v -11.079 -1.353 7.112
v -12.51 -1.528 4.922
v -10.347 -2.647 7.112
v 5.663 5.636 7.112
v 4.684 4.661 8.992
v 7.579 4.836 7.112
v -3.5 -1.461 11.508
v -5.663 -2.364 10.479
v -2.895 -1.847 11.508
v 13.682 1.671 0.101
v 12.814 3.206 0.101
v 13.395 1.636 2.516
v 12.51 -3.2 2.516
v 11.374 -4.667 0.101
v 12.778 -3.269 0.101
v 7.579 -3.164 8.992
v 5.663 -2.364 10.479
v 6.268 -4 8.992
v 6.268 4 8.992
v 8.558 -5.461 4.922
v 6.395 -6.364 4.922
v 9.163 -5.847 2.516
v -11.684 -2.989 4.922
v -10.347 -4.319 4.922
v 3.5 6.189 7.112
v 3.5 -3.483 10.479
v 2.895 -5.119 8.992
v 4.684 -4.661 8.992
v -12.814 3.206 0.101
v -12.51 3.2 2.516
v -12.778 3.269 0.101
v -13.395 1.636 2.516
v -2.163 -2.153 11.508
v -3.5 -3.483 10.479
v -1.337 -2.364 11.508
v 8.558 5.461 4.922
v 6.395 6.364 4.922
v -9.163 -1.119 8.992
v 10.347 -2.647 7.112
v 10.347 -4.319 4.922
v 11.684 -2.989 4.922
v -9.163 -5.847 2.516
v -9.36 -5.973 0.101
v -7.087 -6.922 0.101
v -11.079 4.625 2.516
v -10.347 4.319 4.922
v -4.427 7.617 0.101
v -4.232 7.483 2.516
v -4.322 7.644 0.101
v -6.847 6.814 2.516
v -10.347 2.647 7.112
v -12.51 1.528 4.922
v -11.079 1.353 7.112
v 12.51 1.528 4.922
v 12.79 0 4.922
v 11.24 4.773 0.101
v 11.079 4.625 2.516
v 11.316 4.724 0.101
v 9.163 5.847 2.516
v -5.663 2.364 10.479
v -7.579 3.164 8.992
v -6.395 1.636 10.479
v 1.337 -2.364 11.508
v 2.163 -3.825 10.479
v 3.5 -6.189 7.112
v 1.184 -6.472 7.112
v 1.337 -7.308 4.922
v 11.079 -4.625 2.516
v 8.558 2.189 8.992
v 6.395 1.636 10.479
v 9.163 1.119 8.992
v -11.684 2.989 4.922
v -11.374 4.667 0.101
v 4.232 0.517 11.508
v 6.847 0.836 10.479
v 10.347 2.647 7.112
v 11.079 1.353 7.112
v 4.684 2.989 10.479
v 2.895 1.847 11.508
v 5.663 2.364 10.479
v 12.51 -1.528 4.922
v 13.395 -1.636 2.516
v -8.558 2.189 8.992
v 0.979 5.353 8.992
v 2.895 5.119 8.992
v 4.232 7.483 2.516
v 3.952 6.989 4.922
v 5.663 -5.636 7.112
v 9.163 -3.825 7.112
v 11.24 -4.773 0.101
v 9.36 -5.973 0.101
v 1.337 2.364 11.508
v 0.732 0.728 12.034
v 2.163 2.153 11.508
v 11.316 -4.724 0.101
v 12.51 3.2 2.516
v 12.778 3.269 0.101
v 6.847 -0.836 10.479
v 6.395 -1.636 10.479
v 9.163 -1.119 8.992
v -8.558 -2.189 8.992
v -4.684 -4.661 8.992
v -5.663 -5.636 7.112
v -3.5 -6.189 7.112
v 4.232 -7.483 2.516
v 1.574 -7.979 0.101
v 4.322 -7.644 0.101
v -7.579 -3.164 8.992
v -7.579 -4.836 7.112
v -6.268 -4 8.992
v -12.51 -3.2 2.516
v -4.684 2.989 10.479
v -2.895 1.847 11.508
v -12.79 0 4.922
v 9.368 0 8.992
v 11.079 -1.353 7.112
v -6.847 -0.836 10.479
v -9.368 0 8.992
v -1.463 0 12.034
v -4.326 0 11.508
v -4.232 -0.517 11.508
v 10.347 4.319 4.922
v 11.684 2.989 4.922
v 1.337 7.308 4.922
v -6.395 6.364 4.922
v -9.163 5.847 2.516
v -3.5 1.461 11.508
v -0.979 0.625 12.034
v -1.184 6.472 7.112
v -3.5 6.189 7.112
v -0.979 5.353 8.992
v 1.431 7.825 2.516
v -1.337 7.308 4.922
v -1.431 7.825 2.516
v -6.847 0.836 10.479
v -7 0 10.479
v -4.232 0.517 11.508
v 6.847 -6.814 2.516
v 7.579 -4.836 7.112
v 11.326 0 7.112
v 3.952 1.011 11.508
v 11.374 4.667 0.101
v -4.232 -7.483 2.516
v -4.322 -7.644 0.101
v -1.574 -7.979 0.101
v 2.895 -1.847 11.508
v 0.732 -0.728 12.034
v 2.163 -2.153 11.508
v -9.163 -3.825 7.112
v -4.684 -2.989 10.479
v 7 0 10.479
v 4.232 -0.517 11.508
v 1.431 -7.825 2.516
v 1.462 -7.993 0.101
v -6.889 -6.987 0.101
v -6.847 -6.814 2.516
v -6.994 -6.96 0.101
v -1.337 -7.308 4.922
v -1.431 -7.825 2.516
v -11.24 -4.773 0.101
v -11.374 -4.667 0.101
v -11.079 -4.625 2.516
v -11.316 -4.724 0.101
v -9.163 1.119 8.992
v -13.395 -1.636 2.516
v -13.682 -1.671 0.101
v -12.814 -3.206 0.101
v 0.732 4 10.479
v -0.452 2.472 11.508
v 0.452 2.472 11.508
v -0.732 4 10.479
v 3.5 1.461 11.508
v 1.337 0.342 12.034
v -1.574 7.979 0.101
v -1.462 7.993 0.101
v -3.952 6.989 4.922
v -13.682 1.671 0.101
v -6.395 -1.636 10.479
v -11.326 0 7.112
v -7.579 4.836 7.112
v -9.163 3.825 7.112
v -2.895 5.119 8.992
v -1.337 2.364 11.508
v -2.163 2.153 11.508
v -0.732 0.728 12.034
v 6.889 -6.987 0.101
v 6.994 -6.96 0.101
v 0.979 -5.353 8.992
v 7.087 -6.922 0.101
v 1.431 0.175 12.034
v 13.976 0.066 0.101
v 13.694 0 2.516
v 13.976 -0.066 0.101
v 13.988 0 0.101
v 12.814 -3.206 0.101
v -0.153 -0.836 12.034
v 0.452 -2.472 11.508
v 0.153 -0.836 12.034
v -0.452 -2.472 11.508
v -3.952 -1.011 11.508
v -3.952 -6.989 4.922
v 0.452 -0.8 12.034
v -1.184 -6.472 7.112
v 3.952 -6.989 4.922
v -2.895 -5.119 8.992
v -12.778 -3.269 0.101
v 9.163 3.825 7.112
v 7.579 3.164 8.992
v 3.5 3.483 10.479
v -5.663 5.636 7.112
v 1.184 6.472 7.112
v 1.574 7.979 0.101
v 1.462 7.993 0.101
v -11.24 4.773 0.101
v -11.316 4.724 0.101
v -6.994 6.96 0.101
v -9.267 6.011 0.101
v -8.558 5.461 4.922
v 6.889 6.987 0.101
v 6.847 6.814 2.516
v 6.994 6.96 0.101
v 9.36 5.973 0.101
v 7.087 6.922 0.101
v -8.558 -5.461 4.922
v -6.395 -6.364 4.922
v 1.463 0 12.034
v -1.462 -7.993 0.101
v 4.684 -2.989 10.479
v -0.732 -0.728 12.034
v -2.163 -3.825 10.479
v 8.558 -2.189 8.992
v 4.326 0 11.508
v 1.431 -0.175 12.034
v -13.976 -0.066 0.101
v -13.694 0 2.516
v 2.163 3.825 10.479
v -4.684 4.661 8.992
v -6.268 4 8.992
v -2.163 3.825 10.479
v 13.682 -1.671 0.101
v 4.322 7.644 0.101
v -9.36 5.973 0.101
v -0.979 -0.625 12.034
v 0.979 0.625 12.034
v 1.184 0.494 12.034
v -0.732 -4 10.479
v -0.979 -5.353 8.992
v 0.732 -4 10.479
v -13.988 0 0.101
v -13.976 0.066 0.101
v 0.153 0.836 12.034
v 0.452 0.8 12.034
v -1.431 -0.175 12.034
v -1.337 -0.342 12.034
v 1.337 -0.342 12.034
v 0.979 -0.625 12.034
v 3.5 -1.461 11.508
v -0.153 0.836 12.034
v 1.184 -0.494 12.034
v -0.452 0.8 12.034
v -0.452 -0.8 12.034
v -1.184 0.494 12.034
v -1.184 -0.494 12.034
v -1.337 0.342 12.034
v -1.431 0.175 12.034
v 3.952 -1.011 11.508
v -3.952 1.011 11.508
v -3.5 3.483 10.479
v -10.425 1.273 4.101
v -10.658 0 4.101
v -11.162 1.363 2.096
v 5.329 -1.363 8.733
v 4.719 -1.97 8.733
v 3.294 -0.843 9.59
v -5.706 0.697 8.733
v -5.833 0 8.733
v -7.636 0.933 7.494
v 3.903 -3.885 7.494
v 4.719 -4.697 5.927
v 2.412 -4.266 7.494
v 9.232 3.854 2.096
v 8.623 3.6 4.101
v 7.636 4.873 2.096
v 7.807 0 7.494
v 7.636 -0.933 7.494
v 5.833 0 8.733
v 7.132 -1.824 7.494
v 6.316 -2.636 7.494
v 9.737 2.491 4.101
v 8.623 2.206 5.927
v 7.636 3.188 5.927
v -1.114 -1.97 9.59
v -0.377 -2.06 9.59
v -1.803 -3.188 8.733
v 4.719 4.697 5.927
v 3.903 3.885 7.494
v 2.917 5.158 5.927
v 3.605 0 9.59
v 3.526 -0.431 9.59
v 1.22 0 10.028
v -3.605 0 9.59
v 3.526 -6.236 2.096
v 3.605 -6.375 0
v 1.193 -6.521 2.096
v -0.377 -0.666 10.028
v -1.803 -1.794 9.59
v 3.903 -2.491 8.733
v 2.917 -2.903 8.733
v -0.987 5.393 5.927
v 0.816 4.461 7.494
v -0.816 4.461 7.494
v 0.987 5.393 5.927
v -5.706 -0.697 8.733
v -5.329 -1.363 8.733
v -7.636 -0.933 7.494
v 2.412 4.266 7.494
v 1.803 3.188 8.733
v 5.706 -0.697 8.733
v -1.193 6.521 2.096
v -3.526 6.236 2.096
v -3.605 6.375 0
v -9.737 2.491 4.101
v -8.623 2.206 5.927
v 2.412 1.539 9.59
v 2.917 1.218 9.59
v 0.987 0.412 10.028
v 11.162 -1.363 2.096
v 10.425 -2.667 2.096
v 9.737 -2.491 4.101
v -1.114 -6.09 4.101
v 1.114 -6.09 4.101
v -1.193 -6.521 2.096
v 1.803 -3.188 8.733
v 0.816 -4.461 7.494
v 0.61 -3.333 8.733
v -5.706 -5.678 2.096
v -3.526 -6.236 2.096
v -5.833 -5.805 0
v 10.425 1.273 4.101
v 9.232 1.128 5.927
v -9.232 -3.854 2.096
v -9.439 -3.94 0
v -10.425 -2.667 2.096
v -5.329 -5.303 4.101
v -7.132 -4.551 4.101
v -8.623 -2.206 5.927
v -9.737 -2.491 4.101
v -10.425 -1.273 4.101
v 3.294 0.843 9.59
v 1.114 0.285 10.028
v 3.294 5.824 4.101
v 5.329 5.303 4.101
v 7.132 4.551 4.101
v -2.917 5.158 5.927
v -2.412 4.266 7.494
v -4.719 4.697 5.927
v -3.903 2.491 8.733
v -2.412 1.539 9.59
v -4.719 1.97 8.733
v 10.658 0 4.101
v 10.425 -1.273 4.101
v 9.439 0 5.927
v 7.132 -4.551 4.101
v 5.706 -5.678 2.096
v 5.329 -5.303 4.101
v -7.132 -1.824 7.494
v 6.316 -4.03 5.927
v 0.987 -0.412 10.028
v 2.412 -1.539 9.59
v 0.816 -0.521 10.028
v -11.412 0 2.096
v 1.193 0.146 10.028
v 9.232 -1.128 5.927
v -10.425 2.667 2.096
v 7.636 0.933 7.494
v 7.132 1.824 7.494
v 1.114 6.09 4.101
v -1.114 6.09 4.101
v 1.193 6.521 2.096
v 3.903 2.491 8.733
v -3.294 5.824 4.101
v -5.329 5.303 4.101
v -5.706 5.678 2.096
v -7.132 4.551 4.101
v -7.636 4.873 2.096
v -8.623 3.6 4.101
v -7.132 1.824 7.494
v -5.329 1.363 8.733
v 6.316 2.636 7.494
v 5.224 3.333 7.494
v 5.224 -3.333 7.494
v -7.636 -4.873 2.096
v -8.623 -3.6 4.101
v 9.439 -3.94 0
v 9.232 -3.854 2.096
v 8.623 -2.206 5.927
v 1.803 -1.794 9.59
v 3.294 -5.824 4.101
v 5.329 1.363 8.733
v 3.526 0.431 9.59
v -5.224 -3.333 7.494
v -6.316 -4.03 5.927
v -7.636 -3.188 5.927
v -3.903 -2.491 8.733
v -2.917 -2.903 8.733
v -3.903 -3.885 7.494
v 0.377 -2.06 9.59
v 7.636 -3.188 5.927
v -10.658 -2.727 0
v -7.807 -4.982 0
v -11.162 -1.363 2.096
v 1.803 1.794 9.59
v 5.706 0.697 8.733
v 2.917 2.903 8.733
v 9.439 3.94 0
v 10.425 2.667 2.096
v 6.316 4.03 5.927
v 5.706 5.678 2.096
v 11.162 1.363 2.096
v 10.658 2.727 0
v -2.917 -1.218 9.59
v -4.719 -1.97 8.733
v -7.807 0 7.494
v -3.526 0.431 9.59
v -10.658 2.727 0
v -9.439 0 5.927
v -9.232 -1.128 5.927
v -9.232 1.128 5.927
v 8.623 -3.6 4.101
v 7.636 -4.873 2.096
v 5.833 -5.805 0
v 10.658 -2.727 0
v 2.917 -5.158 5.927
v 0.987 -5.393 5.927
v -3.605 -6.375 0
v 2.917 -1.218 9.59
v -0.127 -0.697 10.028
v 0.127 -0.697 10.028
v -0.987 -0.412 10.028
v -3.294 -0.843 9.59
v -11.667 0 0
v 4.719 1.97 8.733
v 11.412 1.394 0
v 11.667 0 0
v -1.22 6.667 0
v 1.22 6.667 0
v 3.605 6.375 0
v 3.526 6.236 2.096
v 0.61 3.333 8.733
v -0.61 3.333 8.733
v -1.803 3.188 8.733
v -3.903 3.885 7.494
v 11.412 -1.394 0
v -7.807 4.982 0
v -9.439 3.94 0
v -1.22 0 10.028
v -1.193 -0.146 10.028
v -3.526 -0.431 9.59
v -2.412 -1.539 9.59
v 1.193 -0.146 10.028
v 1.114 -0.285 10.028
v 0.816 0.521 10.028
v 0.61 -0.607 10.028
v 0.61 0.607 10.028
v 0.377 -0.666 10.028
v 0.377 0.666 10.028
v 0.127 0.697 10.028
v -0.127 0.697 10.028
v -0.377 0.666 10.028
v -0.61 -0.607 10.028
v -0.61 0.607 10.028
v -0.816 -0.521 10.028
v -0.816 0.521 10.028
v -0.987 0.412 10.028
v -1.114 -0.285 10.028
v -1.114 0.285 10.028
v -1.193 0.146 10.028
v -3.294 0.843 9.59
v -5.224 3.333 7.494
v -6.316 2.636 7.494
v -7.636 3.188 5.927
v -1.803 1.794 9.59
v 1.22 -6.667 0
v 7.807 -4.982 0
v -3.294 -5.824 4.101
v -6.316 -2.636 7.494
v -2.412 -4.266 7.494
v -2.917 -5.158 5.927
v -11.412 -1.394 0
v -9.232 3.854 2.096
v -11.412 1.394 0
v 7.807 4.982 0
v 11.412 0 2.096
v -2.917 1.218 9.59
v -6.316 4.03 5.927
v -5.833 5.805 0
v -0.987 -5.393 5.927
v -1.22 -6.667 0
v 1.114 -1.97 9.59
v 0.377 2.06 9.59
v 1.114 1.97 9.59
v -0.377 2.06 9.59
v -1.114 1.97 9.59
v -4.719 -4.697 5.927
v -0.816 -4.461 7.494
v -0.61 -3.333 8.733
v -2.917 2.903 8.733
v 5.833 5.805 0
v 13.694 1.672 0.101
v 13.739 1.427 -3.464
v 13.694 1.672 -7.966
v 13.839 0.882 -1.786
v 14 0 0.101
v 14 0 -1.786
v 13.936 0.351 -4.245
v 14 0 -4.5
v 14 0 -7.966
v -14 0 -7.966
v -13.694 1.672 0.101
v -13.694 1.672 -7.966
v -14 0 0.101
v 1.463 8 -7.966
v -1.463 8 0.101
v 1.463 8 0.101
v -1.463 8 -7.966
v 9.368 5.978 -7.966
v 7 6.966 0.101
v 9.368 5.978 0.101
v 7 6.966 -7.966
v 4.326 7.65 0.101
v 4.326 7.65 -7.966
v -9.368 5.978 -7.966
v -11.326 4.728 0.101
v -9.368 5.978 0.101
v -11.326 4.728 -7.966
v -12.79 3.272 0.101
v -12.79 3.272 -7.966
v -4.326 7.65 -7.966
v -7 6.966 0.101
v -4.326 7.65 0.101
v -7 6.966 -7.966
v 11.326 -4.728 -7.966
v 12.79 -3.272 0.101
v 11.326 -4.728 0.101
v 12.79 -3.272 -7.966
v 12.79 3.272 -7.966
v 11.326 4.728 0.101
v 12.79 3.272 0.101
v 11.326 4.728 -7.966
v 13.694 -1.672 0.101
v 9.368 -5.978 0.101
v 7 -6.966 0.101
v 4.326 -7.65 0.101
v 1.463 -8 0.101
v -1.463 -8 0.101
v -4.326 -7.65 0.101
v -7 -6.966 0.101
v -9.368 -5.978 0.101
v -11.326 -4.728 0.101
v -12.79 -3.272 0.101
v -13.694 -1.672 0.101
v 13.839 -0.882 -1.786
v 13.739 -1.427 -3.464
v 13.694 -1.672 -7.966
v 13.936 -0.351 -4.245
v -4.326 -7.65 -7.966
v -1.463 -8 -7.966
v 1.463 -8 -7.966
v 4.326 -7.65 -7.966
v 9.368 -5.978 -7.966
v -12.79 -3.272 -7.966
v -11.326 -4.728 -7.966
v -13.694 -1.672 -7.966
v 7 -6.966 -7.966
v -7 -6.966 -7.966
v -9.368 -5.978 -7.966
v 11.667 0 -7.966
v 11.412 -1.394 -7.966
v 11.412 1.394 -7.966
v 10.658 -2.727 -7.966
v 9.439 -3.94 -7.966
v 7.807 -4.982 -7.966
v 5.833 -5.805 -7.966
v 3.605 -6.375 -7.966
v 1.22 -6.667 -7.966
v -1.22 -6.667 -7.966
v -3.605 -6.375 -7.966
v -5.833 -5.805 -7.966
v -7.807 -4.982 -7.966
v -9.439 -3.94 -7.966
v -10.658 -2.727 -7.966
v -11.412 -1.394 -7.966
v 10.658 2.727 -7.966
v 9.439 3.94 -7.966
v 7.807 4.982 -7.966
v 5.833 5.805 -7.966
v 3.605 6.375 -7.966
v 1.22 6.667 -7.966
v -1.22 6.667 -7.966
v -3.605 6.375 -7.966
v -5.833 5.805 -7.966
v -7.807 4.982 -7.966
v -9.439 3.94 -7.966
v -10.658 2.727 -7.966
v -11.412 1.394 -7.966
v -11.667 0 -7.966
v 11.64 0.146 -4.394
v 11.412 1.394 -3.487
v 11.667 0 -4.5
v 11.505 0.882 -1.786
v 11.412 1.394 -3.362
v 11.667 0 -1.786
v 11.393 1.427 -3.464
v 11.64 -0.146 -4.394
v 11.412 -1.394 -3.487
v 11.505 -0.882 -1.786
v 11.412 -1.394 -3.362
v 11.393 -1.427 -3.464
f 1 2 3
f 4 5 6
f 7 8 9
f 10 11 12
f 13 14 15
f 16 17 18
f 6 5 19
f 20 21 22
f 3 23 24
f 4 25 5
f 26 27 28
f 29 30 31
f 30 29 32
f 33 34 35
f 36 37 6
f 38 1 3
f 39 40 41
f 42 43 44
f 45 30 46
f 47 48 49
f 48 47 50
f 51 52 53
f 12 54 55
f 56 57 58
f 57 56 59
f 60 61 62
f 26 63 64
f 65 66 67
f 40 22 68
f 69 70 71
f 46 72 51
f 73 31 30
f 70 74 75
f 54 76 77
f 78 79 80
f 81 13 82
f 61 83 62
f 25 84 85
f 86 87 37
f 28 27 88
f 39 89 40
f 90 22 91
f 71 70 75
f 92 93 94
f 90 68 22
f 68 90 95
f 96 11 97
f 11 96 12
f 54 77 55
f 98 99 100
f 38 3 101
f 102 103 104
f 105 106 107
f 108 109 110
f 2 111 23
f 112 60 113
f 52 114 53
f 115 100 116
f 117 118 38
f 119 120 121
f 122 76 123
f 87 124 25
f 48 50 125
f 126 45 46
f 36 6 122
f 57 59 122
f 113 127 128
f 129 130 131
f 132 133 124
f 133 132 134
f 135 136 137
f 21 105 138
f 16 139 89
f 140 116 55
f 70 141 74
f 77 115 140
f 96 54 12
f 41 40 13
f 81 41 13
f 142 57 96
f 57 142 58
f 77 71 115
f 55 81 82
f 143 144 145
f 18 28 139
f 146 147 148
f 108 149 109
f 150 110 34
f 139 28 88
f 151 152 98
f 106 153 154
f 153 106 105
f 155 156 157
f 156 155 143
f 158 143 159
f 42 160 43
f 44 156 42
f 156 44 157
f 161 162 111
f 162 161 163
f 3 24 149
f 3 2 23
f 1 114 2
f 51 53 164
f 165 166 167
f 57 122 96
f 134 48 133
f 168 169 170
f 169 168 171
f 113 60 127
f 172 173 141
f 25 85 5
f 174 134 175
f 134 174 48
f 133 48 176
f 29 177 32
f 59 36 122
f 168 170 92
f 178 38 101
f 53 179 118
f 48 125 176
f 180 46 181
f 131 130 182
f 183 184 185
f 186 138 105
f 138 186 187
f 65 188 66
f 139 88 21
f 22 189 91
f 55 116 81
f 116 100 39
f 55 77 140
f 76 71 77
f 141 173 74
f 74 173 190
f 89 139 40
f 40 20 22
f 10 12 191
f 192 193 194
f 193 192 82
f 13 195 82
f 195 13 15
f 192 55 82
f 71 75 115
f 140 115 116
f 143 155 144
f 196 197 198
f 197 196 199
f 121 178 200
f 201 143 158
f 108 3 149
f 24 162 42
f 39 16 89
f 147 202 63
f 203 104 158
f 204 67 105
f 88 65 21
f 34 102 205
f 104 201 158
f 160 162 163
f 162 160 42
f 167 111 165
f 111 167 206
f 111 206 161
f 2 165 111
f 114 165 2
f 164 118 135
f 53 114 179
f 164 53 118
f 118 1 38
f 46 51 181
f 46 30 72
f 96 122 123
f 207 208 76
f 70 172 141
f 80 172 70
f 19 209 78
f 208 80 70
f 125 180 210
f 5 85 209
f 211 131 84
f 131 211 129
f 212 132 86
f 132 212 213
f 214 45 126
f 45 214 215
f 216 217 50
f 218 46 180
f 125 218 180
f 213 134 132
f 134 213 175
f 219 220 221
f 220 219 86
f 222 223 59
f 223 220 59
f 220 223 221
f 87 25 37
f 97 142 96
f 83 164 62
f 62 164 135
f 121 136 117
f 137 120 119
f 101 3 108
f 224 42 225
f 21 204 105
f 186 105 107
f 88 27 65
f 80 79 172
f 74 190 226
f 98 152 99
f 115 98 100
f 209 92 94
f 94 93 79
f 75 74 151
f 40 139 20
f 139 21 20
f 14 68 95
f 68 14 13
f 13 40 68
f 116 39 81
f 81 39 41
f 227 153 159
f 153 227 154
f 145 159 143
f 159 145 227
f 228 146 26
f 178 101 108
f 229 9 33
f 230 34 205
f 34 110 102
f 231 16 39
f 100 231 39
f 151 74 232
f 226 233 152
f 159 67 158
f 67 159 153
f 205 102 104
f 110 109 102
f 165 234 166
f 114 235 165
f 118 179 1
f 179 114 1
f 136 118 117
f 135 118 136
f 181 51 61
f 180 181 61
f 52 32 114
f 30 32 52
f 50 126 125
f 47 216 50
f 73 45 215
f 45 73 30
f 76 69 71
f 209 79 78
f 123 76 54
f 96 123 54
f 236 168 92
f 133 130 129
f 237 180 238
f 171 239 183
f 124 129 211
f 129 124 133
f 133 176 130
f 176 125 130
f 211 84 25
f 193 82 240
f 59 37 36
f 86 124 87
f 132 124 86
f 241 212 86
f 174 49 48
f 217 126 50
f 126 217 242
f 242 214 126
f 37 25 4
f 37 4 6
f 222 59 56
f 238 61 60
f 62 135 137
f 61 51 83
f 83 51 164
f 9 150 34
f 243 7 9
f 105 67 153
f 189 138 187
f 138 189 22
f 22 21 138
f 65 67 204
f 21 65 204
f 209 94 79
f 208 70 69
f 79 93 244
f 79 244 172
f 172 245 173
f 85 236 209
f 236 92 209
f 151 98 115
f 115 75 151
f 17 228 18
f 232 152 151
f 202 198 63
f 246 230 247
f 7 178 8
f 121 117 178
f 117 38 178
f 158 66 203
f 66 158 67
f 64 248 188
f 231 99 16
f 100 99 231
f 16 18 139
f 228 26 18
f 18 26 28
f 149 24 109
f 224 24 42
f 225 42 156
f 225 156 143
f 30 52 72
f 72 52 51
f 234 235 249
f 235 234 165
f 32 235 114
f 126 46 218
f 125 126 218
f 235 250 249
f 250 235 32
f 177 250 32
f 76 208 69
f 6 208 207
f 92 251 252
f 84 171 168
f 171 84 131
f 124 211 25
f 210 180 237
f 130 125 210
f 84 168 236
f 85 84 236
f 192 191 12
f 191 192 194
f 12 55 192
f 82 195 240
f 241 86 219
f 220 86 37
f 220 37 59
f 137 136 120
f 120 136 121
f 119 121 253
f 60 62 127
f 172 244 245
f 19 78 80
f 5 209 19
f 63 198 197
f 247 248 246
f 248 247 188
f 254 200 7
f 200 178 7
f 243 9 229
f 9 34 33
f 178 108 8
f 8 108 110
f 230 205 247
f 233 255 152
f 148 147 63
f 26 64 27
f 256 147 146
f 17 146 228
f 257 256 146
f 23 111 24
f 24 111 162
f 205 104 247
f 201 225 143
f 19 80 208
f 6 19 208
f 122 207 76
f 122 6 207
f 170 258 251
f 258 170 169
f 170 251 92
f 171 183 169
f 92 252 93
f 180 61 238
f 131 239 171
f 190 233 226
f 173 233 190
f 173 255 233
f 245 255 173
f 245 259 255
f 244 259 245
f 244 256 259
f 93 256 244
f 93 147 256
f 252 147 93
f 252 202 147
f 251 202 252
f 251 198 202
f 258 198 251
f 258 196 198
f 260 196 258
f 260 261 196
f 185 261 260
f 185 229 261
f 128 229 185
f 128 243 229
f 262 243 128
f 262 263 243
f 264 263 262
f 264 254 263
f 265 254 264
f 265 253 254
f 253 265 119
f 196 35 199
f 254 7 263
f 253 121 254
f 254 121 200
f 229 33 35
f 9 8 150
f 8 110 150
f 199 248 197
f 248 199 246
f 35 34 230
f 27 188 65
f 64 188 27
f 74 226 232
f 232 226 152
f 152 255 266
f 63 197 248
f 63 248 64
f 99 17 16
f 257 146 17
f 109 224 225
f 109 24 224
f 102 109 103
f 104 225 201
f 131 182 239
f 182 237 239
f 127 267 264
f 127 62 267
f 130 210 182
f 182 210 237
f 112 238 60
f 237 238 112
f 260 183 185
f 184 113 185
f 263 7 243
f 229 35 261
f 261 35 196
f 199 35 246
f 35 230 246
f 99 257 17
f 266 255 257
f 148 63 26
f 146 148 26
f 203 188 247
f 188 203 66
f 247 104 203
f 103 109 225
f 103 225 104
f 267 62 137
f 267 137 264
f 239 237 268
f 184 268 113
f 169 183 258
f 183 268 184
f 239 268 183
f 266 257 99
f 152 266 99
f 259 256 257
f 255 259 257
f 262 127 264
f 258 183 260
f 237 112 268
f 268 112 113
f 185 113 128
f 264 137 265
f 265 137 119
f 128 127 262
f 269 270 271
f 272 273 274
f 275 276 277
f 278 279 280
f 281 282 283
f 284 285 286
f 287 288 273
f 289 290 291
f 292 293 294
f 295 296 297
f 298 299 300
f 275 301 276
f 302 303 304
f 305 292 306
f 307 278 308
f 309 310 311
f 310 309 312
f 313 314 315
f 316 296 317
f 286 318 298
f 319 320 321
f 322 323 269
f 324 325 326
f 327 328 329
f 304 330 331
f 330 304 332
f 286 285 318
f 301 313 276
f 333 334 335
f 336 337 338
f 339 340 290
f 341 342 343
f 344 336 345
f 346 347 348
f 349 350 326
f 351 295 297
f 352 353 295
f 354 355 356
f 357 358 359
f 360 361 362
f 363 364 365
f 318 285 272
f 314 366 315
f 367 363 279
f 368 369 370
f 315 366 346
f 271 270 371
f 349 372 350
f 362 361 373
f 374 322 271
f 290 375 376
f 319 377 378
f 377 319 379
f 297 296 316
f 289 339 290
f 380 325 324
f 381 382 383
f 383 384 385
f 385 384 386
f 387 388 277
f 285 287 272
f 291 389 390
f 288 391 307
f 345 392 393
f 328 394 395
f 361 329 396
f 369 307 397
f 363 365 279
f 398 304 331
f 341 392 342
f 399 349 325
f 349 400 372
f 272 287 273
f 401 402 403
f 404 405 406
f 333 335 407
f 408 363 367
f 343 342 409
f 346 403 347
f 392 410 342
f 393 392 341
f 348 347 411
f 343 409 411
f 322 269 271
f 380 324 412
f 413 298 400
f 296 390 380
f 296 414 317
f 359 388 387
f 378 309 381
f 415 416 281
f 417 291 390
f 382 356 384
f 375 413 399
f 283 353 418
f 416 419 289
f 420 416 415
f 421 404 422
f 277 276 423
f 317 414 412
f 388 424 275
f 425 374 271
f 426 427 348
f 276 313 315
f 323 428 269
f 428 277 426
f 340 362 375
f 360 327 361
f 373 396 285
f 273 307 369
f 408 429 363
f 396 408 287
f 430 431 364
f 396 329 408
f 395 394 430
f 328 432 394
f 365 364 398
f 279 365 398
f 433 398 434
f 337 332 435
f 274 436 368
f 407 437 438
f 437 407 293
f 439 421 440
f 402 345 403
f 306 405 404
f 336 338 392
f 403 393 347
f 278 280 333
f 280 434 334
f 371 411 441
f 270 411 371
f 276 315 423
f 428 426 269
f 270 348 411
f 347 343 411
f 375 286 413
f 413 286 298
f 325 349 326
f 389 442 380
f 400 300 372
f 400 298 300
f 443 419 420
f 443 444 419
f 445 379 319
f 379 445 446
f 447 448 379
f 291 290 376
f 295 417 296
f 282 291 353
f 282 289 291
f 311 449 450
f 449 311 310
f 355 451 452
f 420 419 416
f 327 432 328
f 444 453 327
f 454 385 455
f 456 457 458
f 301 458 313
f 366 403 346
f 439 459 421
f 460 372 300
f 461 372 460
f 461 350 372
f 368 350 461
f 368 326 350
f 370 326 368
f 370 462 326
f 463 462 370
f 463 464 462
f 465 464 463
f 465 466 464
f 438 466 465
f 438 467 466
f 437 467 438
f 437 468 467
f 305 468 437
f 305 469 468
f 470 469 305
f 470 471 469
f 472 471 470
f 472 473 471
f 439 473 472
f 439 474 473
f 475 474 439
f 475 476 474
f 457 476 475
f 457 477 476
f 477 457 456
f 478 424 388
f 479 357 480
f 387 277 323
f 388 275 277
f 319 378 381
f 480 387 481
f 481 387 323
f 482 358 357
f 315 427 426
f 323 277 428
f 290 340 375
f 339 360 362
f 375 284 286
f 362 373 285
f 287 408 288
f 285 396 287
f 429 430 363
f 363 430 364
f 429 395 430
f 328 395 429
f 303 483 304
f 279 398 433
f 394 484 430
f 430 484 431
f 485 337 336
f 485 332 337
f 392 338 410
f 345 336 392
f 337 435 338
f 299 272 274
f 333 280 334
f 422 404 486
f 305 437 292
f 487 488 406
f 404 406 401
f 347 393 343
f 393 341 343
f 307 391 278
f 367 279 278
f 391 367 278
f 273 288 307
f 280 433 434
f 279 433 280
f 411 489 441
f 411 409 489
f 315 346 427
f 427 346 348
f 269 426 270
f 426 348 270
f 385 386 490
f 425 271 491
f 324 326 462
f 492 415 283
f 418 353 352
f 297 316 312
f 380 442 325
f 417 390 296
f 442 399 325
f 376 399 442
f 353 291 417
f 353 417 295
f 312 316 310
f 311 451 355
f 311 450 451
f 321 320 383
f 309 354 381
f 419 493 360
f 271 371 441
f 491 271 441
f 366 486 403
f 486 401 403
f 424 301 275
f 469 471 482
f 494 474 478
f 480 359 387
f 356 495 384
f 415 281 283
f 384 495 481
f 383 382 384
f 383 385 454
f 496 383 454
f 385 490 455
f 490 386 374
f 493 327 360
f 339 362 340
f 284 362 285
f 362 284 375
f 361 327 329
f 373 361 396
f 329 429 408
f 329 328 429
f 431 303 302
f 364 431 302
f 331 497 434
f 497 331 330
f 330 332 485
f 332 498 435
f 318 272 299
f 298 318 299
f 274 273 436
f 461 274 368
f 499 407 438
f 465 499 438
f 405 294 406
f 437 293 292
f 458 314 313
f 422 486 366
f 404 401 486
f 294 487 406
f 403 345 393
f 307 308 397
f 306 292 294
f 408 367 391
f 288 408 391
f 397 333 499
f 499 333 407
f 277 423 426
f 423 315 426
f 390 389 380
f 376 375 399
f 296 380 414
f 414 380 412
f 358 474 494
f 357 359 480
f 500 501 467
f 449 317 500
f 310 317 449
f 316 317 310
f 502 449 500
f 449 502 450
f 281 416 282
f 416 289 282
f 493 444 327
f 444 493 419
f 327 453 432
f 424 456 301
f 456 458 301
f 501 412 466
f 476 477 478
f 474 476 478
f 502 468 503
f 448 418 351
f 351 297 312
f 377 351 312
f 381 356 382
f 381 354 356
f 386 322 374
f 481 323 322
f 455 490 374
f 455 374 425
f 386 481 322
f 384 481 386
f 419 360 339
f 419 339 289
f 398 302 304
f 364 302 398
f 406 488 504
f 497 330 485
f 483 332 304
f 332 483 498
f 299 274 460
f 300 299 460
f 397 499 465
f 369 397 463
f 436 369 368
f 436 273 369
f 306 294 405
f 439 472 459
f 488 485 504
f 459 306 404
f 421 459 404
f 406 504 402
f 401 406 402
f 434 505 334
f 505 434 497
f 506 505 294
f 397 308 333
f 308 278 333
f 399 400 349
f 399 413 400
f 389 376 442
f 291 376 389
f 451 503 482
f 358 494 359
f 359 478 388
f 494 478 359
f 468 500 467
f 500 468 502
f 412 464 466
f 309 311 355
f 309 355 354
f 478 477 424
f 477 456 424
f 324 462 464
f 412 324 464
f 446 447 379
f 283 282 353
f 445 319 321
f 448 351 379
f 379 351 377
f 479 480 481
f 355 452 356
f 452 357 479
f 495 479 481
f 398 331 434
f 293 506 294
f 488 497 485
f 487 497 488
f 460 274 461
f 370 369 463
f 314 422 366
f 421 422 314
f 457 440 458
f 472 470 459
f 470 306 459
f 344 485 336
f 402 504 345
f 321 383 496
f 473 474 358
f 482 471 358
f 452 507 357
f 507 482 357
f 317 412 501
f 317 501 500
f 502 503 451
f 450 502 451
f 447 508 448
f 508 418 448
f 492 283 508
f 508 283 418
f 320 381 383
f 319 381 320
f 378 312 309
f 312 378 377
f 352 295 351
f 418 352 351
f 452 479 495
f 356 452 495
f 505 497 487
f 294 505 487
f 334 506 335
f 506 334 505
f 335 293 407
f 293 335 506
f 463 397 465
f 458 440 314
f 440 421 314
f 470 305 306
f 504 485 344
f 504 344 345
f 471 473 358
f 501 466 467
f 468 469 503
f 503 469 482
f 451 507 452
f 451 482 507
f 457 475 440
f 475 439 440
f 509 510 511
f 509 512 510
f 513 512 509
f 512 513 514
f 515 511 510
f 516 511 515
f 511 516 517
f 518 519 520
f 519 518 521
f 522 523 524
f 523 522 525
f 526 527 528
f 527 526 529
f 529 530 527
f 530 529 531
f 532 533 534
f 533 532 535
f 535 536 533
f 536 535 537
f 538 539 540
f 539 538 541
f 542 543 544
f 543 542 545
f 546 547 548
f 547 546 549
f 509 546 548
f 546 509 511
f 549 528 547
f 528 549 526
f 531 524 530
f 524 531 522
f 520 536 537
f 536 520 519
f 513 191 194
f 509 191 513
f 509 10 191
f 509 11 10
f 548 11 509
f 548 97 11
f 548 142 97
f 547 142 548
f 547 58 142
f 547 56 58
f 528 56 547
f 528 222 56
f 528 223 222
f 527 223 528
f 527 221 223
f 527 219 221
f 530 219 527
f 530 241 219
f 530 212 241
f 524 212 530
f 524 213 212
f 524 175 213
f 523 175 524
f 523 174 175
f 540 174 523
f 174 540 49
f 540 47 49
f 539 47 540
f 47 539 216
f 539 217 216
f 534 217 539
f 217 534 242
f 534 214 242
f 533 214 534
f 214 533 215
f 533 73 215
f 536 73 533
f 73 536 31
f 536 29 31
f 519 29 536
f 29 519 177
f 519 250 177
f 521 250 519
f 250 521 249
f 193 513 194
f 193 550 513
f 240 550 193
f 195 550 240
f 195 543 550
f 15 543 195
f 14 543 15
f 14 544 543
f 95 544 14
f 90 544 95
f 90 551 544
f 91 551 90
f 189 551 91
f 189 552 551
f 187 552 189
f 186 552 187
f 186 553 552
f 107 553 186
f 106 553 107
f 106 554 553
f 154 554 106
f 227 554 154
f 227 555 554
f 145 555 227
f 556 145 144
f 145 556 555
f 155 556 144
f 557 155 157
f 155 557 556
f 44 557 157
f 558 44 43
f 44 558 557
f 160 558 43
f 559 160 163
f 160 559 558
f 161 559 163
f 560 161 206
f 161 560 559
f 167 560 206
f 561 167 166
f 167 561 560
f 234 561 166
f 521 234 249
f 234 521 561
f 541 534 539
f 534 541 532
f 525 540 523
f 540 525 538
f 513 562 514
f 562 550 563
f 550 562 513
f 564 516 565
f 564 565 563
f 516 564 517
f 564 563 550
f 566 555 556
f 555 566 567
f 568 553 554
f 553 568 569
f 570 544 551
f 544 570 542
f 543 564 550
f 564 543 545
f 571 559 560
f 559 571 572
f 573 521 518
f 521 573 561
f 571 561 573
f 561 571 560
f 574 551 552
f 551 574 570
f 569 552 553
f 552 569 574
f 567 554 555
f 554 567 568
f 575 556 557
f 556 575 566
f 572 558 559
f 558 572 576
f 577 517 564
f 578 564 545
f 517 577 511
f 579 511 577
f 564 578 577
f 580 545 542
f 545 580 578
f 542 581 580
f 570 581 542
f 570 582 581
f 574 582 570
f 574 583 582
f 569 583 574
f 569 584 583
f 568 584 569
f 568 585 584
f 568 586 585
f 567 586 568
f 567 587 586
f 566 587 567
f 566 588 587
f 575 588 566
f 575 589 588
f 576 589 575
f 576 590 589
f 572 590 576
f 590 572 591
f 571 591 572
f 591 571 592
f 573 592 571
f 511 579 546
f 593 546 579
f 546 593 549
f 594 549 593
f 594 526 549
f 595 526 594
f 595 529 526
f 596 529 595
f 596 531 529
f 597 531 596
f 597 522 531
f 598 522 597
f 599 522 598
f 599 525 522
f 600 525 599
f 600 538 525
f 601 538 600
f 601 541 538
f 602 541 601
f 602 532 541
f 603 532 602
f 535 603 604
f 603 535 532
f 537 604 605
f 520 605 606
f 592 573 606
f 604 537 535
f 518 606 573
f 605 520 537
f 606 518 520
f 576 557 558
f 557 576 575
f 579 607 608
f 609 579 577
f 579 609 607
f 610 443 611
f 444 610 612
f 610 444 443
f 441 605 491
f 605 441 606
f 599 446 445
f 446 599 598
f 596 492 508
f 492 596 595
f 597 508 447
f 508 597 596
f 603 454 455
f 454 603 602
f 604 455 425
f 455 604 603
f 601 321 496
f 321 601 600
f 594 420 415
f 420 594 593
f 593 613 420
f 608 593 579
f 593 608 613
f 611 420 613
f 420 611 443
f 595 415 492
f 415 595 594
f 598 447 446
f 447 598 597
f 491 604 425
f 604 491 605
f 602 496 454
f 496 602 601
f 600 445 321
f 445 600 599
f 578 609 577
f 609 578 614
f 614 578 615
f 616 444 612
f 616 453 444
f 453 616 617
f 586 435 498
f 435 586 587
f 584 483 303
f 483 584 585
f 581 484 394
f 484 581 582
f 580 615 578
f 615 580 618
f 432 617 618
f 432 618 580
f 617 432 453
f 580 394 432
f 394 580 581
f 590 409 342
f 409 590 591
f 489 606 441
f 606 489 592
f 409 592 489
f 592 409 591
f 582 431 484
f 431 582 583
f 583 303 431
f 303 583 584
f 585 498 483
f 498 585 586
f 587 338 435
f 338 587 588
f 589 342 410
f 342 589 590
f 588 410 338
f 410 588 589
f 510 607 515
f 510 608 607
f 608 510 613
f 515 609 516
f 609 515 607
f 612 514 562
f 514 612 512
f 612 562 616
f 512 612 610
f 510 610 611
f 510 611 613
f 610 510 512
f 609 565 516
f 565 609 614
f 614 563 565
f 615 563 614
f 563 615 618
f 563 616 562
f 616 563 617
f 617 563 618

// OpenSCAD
 difference() {
   resize([28,16,20]) 
       union() {
           difference() {
                sphere(r = 12);
                sphere(r = 10);
                translate([-15, -15, -30]) {cube(size =[30,30,30]);};
           }
           translate([0, 0, -8+0.1])
                difference() {
                    cylinder(h= 8, r = 12);
                    cylinder(h= 8, r = 10);
           };
      }
      translate([10, 0, -3])rotate(a=[0,90,0])cylinder(h= 16, r = 1.5);   

    }
